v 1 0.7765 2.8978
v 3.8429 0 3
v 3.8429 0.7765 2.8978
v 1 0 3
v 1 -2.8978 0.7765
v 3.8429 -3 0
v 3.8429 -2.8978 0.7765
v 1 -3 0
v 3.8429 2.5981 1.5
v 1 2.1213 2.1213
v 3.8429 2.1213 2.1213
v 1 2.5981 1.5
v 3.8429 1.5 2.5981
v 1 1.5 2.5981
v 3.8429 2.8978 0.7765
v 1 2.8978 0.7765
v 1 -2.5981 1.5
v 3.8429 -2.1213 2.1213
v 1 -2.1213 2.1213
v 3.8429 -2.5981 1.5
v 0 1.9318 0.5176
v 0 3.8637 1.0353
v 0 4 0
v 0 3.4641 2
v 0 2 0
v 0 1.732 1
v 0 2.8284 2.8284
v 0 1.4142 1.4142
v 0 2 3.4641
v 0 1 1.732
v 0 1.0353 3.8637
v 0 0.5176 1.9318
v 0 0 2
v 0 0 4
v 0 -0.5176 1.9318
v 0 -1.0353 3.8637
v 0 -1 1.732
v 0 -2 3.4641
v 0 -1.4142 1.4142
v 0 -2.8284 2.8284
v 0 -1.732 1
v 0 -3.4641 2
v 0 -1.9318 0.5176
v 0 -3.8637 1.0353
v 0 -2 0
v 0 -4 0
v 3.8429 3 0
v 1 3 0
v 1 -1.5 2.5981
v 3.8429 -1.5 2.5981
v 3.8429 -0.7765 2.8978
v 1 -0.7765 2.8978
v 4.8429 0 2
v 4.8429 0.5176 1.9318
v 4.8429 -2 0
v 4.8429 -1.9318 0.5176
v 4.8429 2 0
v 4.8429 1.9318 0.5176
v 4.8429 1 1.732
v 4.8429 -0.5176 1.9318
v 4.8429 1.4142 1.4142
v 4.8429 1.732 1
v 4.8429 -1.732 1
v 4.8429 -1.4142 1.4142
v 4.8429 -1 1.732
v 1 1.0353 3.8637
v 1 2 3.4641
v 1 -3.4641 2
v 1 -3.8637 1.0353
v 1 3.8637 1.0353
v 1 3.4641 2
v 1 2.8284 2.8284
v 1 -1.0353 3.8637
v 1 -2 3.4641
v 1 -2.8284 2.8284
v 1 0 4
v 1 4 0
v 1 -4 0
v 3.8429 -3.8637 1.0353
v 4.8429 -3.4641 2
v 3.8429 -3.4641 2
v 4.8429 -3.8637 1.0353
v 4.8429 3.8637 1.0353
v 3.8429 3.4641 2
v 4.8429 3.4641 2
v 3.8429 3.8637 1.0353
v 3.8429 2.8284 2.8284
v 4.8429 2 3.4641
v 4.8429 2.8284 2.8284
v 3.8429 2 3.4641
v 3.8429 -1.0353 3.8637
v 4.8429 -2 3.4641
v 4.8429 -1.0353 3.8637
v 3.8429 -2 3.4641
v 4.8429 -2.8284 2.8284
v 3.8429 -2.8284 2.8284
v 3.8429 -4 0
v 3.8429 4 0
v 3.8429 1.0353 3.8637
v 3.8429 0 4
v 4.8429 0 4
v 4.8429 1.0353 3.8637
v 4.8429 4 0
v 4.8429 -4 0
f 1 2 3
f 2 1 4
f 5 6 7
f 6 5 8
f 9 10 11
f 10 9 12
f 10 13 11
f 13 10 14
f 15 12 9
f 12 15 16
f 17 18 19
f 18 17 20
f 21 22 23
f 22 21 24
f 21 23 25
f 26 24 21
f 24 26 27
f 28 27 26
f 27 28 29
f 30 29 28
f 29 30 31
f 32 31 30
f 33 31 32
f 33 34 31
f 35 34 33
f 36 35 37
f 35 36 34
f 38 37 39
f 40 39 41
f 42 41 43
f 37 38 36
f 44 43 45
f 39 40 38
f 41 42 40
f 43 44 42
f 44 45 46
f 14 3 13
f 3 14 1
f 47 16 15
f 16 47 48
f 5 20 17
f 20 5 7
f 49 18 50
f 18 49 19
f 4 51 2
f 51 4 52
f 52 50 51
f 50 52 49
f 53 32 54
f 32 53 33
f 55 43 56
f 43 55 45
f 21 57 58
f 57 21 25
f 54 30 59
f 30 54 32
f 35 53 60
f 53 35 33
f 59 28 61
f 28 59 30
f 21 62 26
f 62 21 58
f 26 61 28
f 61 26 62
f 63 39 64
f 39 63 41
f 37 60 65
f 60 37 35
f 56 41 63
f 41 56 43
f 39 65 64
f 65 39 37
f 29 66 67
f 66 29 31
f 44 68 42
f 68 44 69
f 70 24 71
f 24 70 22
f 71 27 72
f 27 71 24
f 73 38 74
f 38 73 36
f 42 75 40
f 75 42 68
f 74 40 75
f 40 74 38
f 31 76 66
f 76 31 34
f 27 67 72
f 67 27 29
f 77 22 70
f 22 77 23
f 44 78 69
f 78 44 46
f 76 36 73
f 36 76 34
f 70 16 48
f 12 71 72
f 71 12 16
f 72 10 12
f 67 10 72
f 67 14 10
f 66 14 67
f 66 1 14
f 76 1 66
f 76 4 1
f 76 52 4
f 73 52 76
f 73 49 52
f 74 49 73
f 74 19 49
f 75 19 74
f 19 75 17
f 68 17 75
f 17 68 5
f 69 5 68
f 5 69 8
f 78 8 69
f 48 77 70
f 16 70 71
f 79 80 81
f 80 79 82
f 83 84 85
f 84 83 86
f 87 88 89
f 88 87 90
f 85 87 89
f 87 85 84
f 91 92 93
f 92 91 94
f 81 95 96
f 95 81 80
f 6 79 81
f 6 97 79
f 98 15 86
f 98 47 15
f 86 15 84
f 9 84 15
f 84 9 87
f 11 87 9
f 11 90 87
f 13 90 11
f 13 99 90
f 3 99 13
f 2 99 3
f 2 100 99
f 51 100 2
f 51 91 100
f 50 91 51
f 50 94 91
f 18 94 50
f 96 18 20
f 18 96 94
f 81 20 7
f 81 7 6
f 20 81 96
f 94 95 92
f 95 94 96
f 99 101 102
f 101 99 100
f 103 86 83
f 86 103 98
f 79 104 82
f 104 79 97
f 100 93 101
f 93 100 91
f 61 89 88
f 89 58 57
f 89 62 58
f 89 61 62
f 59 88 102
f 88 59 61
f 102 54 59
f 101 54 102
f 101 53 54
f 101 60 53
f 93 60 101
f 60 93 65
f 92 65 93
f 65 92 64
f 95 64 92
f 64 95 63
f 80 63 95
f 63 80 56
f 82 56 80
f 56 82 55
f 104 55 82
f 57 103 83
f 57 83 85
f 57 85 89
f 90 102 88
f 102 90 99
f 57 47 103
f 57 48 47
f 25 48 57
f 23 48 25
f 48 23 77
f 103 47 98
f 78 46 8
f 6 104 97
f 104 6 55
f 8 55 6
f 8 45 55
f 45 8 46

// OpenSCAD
// file: ../build_environments.scad
// build_environments.scad: modules to build level sections
//

module pool(diameter=10.0, wall_height=2.0, step_width=3.0, connections=[])
{
    difference() {
        union() {
        difference() {
            cylinder(h=0.5,r1=diameter+step_width,r2=diameter+step_width,$fn=48);
            translate([0,0,-0.1])
                cylinder(h=0.7,r1=diameter,r2=diameter,$fn=48);
        }
        difference() {
            cylinder(h=wall_height,r1=diameter+step_width+1.0,r2=diameter+step_width+1.0,$fn=48);
            translate([0,0,-0.1])
                cylinder(h=wall_height+0.2,r1=diameter+step_width,r2=diameter+step_width,$fn=48);
        }
        }
    
        for (c = connections)
        {
            rotate([0,90,0]) {
                angle = atan2(c[1],c[0]);
                rotate([-angle,0,0]) {
                    cylinder(h=diameter+5.0,r1=c[2],r2=c[2],$fn=48);
                }
            }
        }
    }
}

module straight(length=10.0, width=2.0, dy1=0.0, dy2=0.0, dz=0.0)
{
    dims = [0, 0, 0, 0, 0, (dz/length)];
    matrix = [
        [ 1, dims[0], dims[1], 0 ],
        [ dims[2], 1, dims[4], 0 ],
        [ dims[5], dims[3], 1, 0 ],
        [ 0, 0, 0, 1 ]
    ];
    multmatrix(matrix)
    difference() {
        translate([dy1,0,0])
        union() {
            rotate([0,90,0]) {
                difference() {
                    cylinder(h=(length-dy1-dy2),r1=width+1.0,r2=width+1.0,$fn=24);
                    translate([0,0,-0.1])
                        cylinder(h=(length-dy1-dy2+0.2),r1=width,r2=width,$fn=24);
                }
                difference() {
                    cylinder(h=1.0,r1=width+2.0,r2=width+2.0,$fn=24);
                    translate([0,0,-0.1])
                        cylinder(h=1.2,r1=width,r2=width,$fn=24);
                }
                translate([0,0,(length-dy1-dy2)-1.0]) {
                    difference() {
                        cylinder(h=1.0,r1=width+2.0,r2=width+2.0,$fn=24);
                        translate([0,0,-0.1])
                            cylinder(h=1.2,r1=width,r2=width,$fn=24);
                    }
                }
            }
        }
        translate([0,0,-(2*width+4.0)/2])
            cube([3*length,3*length,2*width+4.0],center=true);
    }
}

module curve(p0=[0,0], center=[0,0], dir=1, angle=0.0, width=2.0)
{
    radius = sqrt((p0[0]-center[0])*(p0[0]-center[0]) + (p0[1]-center[1])*(p0[1]-center[1]));
    if (dir == 0) {
        difference() {
            rotate([0,0,-90])
            difference() {
                rotate_extrude(angle = angle, convexity = 10, $fn=32)
                    translate([radius, 0, 0])
                        circle(r = width+1.0,$fn=24);
                rotate([0,0,-1.0])
                    rotate_extrude(angle = angle+2.0, convexity = 10, $fn=32)
                        translate([radius, 0, 0])
                            circle(r = width,$fn=24);
            }
            translate([0,0,-(2*width+4.0)/2])
                cube([5*radius,5*radius,2*width+4.0],center=true);
        }
    }
    else {
        difference() {
            rotate([0,0,90])
            difference() {
                rotate_extrude(angle = -angle, convexity = 10, $fn=32)
                    translate([radius, 0, 0])
                        circle(r = width+1.0,$fn=24);
                rotate([0,0,1.0])
                    rotate_extrude(angle = -angle-2.0, convexity = 10, $fn=32)
                        translate([radius, 0, 0])
                            circle(r = width,$fn=24);
            }
            translate([0,0,-(2*width+4.0)/2])
                cube([5*radius,5*radius,2*width+4.0],center=true);
        }
    }

}

// test pool
//pool(diameter=12.0000, wall_height=3.0000, step_width=3.0000, connections=[[0.0000,-26.0000,2.0000], [23.6074,0.0000,2.0000]]);

// test straight, slope
//straight(length=26.0000, width=2.0000, dy1=11.8322, dy2=6.7082, dz=0.0000);
//straight(length=29.1549, width=12.0000, dy1=0.0000, dy2=0.0000, dz=-15.0000);

// test curve
//curve(p0=[23.6074, 0.0000], center=[23.6074, 5.0000], dir=0, angle=60.1011, width=2.0000);
//curve(p0=[33.6426, 12.4219], center=[37.9771, 9.9295], dir=1, angle=120.4627, width=2.0000);
// main file
use <../build_environments.scad>;
straight(length=14.6409, width=2.0000, dy1=0.0000, dy2=9.7980, dz=0.0000);
